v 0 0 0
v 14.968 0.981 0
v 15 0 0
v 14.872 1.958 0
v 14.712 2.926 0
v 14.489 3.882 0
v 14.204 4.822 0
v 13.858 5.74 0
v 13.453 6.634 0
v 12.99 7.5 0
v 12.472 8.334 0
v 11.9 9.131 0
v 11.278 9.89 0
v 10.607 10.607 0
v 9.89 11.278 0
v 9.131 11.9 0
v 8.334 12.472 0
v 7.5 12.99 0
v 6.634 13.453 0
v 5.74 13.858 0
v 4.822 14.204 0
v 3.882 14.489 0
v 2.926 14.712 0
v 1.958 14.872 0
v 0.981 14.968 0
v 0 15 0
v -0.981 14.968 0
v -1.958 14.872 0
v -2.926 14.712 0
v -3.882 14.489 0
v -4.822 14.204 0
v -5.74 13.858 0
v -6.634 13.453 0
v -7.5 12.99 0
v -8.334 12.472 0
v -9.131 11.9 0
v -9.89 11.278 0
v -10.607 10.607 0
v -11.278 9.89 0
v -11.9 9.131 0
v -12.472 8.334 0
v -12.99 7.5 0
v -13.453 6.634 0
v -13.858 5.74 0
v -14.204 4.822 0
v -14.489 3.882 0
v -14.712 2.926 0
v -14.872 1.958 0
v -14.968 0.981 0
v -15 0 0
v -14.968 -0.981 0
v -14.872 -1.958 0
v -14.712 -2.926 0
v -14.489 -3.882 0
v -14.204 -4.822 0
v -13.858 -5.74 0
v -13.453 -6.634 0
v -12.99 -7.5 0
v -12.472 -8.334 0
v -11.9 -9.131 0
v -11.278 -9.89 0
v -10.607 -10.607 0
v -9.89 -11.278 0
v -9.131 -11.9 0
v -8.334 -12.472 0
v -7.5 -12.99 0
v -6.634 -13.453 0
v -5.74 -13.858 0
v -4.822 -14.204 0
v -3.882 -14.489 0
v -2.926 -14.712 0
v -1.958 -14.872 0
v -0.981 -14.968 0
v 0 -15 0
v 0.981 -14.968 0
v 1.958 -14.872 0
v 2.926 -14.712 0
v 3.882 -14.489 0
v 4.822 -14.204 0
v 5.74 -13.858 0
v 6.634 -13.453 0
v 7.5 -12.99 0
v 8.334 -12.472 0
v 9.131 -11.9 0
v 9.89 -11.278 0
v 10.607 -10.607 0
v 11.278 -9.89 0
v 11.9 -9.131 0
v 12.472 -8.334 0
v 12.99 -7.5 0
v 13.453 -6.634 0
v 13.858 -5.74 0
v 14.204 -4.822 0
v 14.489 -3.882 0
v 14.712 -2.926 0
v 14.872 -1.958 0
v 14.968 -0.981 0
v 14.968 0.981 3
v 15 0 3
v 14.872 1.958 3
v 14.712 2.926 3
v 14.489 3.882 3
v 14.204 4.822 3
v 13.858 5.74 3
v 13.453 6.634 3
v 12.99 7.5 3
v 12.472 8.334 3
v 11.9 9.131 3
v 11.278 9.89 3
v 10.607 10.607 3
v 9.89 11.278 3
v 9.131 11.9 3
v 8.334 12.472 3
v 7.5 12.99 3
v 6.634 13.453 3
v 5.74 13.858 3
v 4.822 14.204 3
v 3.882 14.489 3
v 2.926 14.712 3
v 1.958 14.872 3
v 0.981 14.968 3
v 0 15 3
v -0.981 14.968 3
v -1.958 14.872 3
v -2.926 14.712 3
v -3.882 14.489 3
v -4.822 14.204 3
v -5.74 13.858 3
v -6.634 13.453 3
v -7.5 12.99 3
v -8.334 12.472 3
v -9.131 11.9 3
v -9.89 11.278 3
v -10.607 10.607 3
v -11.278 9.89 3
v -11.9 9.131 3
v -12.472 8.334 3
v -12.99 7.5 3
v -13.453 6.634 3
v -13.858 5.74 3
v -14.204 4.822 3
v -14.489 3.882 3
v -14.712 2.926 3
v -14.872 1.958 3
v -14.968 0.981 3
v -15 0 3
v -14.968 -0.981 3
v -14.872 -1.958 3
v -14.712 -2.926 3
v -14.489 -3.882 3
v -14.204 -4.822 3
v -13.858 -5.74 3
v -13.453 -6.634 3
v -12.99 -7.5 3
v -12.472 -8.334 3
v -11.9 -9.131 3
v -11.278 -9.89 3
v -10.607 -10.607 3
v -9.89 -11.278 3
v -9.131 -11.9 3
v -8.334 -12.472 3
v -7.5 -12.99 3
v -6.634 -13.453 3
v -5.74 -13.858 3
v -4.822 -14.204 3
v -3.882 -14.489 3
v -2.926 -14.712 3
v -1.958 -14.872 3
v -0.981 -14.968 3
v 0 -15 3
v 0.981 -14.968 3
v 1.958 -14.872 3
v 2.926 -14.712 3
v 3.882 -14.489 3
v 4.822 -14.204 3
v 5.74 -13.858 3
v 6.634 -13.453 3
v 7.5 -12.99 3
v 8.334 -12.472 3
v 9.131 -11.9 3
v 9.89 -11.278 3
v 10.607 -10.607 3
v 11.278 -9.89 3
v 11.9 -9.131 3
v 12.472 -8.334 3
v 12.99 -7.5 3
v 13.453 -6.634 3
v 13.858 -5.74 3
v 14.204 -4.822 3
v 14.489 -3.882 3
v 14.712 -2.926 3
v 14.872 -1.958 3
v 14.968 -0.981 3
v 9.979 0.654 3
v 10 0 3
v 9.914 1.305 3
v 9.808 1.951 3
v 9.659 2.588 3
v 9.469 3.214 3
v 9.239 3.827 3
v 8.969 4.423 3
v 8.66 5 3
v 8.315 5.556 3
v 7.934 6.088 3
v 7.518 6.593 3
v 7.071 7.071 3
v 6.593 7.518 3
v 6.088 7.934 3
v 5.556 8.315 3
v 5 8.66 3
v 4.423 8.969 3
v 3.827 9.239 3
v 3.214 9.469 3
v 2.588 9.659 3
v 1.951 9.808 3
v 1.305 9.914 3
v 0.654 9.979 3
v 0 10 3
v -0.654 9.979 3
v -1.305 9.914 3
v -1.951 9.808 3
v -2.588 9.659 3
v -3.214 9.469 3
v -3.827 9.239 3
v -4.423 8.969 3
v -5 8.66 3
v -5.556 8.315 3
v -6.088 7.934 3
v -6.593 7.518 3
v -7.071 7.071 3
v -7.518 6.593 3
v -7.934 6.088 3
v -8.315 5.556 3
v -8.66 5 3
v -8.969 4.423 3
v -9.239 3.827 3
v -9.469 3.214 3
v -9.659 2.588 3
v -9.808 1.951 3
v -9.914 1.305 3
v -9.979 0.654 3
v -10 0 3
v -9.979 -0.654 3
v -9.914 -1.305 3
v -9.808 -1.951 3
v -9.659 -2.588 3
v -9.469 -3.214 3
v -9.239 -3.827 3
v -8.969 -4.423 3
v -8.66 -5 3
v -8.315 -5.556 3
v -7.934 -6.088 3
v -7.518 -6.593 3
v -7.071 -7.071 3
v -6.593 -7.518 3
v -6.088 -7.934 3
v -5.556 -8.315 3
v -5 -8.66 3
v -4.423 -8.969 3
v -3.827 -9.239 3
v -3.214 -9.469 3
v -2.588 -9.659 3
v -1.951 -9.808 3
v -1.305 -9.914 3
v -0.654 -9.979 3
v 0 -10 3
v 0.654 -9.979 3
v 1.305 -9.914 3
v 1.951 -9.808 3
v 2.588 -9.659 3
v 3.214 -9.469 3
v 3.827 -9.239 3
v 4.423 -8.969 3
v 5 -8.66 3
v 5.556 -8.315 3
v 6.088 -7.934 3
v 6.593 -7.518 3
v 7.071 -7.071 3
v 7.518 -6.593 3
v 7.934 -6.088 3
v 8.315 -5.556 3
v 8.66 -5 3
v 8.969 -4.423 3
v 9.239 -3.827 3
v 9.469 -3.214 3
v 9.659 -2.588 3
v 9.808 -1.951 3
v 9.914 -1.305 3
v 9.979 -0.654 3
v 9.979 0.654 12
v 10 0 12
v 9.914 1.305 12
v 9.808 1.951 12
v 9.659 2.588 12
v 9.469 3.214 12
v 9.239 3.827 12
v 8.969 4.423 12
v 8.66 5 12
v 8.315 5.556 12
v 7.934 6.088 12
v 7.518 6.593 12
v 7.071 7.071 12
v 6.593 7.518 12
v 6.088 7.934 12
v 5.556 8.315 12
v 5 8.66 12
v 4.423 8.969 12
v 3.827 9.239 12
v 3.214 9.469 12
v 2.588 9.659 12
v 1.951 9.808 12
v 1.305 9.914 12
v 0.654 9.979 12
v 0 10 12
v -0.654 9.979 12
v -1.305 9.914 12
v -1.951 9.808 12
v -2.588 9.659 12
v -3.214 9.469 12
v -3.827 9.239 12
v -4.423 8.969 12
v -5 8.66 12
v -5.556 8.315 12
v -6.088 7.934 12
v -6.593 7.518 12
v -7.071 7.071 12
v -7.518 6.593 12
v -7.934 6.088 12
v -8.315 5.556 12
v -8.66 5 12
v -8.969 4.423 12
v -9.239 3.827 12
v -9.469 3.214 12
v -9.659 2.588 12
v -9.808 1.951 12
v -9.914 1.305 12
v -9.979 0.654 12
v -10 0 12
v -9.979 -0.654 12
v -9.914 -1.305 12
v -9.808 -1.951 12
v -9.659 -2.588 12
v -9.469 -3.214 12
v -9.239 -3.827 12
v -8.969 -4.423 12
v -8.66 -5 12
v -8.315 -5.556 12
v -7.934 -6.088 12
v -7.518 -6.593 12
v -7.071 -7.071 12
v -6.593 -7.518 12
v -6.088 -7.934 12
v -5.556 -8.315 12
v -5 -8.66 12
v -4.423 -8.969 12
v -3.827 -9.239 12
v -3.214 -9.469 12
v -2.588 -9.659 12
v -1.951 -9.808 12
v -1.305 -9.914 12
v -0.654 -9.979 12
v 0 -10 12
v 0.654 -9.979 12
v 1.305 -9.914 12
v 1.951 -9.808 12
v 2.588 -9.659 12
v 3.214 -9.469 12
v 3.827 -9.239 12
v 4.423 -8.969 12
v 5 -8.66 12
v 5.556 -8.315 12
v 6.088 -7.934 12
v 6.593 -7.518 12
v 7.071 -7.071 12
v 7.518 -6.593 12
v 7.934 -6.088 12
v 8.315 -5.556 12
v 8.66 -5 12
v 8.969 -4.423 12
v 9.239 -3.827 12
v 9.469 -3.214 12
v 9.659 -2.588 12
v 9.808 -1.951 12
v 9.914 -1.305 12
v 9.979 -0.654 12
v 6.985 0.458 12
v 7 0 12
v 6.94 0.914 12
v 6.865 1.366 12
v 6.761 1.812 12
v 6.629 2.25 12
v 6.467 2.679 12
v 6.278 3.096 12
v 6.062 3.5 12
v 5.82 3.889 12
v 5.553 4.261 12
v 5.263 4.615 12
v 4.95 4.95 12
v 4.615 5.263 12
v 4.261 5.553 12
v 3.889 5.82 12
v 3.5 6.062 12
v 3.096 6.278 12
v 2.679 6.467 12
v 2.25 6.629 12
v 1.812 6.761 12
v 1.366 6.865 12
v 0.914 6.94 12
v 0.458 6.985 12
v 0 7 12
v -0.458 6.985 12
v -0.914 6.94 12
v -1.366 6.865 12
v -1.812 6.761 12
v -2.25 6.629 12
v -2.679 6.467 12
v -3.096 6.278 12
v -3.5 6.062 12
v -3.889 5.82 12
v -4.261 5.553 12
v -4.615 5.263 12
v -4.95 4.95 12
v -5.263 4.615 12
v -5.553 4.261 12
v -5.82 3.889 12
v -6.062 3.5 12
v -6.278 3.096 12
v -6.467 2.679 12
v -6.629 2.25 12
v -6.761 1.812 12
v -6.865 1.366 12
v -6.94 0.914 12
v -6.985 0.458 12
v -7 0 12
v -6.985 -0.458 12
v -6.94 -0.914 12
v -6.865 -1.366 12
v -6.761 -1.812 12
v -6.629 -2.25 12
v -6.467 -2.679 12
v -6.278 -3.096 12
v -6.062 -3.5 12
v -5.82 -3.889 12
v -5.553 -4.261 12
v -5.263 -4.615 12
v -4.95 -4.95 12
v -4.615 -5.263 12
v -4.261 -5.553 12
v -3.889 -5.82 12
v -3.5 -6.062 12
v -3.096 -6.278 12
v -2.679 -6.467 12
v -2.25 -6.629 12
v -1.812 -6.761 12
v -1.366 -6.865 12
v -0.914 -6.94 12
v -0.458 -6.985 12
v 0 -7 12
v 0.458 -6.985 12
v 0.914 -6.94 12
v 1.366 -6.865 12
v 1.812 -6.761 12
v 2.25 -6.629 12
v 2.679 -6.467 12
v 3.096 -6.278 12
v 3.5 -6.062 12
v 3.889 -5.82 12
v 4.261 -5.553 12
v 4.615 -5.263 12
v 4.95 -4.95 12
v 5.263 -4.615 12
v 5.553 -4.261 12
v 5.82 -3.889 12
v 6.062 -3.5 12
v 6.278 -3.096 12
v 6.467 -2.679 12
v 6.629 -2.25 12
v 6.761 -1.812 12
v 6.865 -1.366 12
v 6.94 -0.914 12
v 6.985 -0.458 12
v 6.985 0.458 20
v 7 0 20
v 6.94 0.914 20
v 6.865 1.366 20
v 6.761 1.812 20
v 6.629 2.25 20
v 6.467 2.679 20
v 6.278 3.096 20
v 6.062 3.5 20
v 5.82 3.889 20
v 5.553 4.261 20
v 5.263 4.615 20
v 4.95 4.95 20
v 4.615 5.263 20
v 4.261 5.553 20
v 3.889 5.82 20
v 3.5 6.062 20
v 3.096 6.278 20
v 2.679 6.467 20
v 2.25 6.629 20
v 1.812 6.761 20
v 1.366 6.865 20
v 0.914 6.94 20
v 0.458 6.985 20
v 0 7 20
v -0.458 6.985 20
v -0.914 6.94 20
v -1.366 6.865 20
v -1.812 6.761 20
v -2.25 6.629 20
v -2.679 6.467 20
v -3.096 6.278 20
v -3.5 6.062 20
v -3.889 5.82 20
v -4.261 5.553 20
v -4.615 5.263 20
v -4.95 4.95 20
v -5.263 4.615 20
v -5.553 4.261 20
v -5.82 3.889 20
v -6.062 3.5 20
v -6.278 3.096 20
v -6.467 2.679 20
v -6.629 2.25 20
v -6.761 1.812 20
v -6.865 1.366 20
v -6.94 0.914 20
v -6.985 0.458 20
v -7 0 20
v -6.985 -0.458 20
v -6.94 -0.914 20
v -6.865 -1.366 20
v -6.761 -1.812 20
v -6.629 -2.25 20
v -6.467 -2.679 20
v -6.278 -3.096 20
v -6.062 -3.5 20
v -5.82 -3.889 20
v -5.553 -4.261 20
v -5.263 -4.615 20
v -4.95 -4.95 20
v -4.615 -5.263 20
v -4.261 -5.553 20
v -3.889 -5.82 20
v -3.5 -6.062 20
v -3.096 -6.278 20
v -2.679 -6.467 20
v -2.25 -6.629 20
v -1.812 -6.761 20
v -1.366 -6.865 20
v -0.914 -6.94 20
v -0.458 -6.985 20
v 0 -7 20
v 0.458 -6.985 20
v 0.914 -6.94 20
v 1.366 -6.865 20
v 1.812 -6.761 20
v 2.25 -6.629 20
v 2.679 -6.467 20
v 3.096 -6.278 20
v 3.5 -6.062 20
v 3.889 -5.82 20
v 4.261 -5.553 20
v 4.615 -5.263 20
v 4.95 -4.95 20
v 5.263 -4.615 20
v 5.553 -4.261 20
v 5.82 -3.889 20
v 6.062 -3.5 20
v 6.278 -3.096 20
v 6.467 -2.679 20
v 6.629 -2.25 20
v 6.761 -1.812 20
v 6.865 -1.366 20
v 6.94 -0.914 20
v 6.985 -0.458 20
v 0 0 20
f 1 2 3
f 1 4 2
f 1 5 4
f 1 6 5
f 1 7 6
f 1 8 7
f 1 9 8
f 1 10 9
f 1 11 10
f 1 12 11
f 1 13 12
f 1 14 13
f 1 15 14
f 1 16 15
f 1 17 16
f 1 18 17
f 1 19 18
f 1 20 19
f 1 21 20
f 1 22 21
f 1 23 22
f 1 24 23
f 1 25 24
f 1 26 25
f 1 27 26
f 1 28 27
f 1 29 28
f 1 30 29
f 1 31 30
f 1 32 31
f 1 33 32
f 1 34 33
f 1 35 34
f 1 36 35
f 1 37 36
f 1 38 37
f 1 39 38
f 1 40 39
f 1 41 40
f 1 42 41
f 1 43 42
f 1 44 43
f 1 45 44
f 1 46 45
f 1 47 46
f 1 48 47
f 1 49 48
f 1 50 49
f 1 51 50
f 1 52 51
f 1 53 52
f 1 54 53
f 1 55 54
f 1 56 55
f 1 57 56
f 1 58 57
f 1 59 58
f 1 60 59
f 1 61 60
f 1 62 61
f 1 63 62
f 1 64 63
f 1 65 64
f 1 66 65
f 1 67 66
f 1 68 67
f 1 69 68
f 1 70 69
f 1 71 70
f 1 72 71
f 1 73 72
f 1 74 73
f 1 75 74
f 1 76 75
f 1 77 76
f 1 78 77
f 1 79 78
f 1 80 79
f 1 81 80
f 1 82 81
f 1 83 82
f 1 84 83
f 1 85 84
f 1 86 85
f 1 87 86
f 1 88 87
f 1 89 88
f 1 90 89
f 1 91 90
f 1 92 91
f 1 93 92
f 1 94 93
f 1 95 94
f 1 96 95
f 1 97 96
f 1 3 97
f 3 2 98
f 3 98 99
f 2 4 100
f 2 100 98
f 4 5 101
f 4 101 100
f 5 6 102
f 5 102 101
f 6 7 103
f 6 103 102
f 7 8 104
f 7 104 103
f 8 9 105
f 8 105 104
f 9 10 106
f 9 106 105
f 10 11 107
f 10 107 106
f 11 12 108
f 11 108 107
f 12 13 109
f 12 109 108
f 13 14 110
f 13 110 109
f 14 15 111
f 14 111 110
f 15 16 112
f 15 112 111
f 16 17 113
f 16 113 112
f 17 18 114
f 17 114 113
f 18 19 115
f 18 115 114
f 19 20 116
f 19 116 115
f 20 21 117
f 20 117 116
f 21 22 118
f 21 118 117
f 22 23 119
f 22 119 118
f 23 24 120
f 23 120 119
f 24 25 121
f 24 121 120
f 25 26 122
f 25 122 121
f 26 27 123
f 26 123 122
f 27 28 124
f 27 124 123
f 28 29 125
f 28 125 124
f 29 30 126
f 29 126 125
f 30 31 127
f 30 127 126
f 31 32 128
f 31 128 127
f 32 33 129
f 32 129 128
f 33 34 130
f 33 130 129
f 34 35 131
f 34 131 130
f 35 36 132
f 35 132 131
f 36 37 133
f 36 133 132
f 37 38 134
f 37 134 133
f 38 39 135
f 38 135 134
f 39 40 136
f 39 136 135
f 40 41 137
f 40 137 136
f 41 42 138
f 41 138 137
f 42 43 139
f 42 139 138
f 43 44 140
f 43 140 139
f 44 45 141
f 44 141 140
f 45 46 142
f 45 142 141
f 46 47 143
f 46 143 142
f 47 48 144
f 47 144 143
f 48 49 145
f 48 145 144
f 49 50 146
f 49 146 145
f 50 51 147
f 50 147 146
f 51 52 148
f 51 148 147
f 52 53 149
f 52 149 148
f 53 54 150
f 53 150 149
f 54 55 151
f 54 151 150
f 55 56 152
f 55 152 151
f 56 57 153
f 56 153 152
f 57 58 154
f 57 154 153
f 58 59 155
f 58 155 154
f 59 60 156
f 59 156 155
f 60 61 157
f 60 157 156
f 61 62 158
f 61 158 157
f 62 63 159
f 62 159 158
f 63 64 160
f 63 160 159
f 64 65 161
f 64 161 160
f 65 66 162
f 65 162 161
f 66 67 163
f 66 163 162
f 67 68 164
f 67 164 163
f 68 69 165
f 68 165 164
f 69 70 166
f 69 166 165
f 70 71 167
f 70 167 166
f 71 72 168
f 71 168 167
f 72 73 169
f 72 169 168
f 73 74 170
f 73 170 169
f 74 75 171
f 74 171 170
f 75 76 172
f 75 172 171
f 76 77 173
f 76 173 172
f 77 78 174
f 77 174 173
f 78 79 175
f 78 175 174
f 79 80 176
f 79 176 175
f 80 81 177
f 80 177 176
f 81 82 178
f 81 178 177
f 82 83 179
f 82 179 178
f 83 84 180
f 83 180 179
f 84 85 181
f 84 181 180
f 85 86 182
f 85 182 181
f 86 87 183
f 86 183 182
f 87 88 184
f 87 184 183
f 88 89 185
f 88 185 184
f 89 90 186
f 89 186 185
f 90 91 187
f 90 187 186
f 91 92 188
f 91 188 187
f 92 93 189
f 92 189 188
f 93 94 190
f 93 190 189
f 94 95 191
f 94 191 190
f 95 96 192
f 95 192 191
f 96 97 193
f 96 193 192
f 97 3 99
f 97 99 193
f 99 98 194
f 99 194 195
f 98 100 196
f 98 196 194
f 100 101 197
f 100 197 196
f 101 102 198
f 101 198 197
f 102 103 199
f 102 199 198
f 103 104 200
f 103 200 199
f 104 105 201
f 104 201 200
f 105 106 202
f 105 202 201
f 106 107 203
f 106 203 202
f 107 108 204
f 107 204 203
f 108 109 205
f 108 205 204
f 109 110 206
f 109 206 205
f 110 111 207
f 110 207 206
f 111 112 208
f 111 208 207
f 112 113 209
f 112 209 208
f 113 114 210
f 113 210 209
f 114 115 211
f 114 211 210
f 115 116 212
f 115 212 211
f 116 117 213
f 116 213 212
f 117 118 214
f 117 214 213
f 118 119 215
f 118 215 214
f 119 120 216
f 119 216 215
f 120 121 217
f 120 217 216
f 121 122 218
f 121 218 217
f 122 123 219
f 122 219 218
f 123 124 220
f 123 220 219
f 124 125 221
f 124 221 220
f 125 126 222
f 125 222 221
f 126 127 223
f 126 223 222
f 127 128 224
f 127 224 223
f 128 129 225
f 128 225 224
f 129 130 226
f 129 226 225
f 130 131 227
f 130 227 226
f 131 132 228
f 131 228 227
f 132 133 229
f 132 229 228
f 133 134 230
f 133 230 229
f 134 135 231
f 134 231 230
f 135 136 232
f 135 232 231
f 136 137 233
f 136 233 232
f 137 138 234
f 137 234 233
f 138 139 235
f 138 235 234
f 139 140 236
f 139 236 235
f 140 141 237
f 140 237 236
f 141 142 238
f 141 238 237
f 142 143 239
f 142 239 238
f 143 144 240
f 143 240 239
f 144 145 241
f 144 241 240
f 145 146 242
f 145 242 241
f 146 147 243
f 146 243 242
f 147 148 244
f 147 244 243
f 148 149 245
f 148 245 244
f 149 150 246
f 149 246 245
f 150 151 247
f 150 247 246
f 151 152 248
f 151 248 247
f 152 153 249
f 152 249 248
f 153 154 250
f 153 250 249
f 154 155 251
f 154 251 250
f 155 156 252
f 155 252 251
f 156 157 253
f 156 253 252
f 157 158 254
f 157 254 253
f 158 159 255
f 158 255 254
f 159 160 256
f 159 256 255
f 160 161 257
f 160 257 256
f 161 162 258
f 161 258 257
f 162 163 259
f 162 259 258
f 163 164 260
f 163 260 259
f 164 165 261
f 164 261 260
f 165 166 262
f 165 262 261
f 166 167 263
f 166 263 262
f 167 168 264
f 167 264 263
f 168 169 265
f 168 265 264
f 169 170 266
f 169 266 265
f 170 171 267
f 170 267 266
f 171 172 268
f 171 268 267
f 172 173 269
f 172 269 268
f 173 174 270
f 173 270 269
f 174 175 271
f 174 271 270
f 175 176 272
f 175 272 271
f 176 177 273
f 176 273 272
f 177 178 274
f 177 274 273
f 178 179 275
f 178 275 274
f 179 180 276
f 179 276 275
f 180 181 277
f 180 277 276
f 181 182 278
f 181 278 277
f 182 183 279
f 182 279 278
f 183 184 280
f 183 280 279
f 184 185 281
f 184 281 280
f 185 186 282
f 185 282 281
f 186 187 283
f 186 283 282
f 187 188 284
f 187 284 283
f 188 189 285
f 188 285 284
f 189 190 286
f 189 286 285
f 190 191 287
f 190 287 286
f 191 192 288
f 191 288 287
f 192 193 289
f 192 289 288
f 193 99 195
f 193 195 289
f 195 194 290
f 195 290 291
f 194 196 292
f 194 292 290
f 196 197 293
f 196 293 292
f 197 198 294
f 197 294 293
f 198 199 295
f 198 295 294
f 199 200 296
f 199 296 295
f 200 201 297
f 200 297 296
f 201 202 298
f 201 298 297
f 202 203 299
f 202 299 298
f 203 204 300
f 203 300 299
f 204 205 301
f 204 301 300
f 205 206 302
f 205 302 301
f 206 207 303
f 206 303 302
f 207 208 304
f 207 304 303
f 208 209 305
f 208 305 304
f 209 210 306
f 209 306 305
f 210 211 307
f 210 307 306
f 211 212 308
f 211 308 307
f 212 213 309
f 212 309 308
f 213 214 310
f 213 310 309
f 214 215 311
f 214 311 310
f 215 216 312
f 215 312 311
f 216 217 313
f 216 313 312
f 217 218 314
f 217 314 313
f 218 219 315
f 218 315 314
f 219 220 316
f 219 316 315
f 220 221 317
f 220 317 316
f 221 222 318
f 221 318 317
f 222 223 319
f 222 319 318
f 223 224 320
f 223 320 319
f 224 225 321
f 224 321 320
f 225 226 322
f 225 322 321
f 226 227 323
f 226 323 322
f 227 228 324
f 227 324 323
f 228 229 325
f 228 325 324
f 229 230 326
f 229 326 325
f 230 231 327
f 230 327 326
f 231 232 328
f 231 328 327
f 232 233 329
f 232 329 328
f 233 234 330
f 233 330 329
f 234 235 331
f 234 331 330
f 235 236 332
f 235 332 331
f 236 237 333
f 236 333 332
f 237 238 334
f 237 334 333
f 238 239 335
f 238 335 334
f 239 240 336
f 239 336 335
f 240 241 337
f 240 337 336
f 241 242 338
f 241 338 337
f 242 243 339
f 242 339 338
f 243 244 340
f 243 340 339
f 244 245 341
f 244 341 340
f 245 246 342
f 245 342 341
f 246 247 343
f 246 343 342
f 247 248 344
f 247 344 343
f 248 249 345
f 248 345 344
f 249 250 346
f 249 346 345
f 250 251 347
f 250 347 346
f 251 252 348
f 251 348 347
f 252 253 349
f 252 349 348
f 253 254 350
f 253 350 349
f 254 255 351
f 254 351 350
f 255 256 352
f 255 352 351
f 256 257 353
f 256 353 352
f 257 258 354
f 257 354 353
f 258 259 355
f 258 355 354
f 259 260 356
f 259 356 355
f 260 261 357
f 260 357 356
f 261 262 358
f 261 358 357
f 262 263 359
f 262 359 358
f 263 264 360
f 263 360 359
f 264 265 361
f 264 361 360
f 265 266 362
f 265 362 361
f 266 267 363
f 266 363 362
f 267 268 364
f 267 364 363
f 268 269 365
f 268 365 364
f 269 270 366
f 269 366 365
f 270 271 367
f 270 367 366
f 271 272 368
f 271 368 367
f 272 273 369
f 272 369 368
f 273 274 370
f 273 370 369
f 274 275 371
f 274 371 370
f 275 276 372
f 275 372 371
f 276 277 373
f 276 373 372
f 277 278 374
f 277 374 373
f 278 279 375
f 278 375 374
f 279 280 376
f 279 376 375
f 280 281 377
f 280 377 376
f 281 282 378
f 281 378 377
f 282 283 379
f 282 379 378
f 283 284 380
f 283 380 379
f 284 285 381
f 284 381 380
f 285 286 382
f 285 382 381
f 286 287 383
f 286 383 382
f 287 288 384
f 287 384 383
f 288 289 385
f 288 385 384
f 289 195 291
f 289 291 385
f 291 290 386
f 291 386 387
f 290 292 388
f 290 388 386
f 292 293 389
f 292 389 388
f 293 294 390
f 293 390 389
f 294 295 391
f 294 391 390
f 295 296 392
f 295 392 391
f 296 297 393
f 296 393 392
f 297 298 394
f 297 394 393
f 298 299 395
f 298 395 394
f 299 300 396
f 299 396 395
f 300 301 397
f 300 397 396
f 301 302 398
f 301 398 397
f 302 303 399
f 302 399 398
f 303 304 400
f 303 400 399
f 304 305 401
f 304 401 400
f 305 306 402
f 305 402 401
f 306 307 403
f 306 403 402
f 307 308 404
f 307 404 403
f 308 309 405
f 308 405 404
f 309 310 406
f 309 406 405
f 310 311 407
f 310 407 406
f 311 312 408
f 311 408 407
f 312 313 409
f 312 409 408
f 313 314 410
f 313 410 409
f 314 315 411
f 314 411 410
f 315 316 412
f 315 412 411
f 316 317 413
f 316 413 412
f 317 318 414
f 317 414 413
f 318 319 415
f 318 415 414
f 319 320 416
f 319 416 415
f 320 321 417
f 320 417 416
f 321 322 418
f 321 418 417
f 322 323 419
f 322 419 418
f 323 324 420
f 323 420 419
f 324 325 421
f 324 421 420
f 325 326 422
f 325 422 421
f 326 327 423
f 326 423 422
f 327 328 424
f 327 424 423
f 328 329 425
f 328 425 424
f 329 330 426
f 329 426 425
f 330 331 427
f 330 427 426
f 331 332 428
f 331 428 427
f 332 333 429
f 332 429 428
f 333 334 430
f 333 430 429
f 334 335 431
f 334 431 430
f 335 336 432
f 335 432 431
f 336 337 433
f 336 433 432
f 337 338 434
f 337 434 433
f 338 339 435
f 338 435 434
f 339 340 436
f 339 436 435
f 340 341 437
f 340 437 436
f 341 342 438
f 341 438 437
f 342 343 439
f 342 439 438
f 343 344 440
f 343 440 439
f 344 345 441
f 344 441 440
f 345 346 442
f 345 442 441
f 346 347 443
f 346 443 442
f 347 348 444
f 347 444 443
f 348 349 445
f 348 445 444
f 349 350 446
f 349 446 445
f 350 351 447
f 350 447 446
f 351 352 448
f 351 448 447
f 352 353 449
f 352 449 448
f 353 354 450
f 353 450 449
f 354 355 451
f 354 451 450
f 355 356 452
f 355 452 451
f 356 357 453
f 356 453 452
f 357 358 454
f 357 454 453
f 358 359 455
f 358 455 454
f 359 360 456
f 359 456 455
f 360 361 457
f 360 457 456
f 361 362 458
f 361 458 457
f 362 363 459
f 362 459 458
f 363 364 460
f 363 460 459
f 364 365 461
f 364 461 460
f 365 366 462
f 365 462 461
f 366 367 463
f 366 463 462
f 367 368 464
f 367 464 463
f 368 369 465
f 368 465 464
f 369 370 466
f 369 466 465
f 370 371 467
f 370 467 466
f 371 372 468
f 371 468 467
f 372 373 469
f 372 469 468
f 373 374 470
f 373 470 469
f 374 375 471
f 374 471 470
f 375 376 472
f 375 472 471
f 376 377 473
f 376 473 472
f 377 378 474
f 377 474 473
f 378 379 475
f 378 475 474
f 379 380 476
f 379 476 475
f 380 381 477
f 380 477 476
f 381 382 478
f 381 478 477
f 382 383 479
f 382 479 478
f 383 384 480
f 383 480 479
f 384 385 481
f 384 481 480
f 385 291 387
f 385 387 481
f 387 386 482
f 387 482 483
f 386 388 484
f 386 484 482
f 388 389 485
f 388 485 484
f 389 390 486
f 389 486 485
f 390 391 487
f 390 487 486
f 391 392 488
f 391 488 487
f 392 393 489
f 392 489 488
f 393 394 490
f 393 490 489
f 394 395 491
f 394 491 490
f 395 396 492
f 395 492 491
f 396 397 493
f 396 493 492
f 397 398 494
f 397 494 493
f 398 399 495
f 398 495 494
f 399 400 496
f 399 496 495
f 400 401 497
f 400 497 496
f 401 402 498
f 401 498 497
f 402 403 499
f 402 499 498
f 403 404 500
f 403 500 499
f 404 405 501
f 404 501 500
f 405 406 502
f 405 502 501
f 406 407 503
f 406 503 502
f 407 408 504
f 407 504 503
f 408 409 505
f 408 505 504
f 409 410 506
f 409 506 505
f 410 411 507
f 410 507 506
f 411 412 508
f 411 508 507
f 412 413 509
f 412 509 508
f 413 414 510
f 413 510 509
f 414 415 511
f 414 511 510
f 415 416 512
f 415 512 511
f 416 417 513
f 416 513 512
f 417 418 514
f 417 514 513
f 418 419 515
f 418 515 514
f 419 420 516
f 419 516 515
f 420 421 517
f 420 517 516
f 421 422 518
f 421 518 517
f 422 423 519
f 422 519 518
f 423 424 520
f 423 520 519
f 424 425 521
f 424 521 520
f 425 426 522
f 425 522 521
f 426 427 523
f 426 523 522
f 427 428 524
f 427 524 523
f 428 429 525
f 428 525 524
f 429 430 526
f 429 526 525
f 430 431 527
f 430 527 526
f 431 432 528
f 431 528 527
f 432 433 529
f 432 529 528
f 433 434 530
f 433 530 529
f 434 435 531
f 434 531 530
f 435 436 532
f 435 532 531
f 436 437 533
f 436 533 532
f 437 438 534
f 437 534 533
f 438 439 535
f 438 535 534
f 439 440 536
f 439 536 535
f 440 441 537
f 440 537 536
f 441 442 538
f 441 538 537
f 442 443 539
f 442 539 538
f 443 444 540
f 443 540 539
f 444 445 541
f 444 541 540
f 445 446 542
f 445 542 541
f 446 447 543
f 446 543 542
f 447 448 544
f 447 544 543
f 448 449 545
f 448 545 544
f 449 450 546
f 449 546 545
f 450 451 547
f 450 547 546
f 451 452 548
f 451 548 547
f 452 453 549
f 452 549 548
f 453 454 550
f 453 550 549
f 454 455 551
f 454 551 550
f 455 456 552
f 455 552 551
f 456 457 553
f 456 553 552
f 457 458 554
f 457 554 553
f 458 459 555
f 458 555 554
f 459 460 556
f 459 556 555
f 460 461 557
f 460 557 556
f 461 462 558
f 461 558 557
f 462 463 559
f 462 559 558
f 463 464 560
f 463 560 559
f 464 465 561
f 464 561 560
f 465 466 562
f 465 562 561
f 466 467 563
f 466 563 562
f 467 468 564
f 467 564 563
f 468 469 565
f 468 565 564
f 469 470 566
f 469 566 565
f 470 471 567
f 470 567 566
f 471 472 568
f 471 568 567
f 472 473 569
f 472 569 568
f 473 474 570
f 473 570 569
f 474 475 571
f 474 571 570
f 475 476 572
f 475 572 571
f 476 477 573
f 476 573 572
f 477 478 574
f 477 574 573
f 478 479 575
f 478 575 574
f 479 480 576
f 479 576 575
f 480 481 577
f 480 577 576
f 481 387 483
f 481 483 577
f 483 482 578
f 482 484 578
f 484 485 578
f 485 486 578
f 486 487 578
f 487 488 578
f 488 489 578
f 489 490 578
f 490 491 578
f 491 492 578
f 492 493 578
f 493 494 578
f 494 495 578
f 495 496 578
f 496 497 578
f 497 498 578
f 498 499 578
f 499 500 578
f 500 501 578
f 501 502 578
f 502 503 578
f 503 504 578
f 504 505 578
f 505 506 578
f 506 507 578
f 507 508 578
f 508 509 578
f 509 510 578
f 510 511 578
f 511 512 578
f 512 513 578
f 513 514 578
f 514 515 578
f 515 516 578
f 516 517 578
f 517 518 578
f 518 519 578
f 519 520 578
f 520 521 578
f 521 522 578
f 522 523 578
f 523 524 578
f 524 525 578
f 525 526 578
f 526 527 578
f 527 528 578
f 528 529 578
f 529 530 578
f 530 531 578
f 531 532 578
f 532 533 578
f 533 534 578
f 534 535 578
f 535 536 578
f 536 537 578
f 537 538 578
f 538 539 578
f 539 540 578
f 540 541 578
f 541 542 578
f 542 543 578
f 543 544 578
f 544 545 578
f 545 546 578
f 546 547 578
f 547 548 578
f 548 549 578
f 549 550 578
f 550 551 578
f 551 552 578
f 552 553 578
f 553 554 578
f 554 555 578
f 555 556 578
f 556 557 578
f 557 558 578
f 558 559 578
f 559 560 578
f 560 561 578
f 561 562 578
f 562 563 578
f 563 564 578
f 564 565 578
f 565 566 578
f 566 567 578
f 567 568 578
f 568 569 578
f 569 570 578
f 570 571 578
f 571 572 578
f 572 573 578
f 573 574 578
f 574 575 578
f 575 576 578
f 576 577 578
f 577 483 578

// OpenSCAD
// Original MechIntel educational model. CC0-1.0. Units: mm.
// Not a standardized or load-rated component.
$fn=96;
// Section points: [radius, height], mm. Edit to change the profile.
section=[[0, 0], [15, 0], [15, 3], [10, 3], [10, 12], [7, 12], [7, 20], [0, 20]];
rotate_extrude($fn=96) polygon(points=section);
